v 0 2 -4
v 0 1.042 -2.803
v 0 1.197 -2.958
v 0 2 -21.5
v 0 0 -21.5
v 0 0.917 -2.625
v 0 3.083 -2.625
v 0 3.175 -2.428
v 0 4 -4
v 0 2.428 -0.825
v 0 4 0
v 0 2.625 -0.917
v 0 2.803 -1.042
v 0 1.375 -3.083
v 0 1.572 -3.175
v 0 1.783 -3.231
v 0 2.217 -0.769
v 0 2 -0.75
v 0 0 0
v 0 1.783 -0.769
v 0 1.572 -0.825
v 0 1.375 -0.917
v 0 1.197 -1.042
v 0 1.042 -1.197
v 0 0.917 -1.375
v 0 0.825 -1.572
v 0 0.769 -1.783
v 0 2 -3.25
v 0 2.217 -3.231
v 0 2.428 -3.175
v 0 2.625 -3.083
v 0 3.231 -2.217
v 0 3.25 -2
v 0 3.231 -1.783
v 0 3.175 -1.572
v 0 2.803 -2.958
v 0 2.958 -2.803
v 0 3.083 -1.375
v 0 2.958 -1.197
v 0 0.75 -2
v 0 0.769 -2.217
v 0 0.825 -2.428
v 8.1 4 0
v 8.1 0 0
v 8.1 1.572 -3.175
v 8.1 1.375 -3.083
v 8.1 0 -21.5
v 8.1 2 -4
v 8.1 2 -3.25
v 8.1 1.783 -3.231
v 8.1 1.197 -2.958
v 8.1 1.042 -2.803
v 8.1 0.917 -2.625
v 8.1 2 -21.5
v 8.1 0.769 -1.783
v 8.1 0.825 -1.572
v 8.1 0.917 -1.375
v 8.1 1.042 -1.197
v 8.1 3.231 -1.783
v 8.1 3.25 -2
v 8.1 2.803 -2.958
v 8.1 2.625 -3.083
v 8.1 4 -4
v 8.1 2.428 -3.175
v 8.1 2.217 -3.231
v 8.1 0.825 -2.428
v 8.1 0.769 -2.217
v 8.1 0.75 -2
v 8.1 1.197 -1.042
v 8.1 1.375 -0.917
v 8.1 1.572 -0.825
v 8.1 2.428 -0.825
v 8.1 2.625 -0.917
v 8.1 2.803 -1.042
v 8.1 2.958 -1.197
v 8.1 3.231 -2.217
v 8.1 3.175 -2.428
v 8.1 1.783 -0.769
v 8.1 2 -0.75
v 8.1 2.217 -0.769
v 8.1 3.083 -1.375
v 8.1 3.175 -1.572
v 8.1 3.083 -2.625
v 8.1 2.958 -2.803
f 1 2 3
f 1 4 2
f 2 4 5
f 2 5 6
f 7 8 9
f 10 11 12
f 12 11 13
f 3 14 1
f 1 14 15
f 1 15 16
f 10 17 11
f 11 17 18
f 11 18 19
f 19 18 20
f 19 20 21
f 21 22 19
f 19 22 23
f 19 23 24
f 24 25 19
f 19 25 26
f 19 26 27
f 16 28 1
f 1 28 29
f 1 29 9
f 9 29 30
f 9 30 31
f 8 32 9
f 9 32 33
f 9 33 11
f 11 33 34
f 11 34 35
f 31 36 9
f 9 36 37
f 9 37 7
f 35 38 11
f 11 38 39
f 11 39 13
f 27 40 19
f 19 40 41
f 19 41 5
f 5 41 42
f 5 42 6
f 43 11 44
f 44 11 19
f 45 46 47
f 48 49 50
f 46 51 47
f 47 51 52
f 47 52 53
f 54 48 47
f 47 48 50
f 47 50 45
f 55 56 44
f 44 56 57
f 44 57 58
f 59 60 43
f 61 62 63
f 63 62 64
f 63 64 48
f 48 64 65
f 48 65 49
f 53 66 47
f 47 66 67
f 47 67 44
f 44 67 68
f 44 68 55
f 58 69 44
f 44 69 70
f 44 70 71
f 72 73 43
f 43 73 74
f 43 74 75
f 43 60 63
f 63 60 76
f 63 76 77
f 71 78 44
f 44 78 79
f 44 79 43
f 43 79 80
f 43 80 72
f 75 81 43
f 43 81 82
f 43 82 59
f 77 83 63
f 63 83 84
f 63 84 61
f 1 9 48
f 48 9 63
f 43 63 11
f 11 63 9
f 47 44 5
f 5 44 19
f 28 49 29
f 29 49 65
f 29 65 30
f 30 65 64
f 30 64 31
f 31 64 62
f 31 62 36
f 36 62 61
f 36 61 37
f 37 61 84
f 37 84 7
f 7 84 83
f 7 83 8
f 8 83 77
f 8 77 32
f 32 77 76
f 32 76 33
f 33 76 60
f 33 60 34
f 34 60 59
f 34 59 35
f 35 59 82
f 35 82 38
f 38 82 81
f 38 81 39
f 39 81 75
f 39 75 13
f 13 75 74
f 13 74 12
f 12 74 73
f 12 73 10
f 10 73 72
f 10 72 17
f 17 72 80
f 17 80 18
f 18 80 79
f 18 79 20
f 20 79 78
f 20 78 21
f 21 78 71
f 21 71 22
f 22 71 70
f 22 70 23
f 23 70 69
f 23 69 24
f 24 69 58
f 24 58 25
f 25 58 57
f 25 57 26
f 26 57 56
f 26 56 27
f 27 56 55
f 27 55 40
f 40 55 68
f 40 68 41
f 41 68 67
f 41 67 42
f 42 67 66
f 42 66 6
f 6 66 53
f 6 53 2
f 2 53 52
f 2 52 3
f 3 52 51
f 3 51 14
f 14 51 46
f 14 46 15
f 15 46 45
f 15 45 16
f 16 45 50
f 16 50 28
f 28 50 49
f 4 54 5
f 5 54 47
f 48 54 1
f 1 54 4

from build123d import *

# Parameters (mm, degrees)
SKETCH1_W           = 8.1
SKETCH1_H           = 4
BOSS_EXTRUDE1_DEPTH = 4
SKETCH2_R           = 1.25
CUT_EXTRUDE1_DEPTH  = 9
SKETCH4_W           = 8.1
SKETCH4_H           = 17.5
BOSS_EXTRUDE2_DEPTH = 2


with BuildPart() as part:
    # Sketch1 → Boss-Extrude1 (new body)
    with BuildSketch(Plane(origin=(0, 0, 0), x_dir=(1, 0, 0), z_dir=(0, 1, 0))):
        with Locations((4.05, 2)):
            Rectangle(SKETCH1_W, SKETCH1_H)
    extrude(amount=BOSS_EXTRUDE1_DEPTH)

    # Sketch2 → Cut-Extrude1 (cut)
    with BuildSketch(Plane(origin=(8.1, 0, 0), x_dir=(0, 0, -1), z_dir=(1, 0, 0))):
        with Locations((2, 2)):
            Circle(SKETCH2_R)
    extrude(amount=-CUT_EXTRUDE1_DEPTH, mode=Mode.SUBTRACT)

    # Sketch4 → Boss-Extrude2 (add)
    with BuildSketch(Plane(origin=(0, 0, 0), x_dir=(-1, 0, 0), z_dir=(0, -1, 0))):
        with Locations((-4.05, 12.75)):
            Rectangle(SKETCH4_W, SKETCH4_H)
    extrude(amount=-BOSS_EXTRUDE2_DEPTH)


solid = part.part
